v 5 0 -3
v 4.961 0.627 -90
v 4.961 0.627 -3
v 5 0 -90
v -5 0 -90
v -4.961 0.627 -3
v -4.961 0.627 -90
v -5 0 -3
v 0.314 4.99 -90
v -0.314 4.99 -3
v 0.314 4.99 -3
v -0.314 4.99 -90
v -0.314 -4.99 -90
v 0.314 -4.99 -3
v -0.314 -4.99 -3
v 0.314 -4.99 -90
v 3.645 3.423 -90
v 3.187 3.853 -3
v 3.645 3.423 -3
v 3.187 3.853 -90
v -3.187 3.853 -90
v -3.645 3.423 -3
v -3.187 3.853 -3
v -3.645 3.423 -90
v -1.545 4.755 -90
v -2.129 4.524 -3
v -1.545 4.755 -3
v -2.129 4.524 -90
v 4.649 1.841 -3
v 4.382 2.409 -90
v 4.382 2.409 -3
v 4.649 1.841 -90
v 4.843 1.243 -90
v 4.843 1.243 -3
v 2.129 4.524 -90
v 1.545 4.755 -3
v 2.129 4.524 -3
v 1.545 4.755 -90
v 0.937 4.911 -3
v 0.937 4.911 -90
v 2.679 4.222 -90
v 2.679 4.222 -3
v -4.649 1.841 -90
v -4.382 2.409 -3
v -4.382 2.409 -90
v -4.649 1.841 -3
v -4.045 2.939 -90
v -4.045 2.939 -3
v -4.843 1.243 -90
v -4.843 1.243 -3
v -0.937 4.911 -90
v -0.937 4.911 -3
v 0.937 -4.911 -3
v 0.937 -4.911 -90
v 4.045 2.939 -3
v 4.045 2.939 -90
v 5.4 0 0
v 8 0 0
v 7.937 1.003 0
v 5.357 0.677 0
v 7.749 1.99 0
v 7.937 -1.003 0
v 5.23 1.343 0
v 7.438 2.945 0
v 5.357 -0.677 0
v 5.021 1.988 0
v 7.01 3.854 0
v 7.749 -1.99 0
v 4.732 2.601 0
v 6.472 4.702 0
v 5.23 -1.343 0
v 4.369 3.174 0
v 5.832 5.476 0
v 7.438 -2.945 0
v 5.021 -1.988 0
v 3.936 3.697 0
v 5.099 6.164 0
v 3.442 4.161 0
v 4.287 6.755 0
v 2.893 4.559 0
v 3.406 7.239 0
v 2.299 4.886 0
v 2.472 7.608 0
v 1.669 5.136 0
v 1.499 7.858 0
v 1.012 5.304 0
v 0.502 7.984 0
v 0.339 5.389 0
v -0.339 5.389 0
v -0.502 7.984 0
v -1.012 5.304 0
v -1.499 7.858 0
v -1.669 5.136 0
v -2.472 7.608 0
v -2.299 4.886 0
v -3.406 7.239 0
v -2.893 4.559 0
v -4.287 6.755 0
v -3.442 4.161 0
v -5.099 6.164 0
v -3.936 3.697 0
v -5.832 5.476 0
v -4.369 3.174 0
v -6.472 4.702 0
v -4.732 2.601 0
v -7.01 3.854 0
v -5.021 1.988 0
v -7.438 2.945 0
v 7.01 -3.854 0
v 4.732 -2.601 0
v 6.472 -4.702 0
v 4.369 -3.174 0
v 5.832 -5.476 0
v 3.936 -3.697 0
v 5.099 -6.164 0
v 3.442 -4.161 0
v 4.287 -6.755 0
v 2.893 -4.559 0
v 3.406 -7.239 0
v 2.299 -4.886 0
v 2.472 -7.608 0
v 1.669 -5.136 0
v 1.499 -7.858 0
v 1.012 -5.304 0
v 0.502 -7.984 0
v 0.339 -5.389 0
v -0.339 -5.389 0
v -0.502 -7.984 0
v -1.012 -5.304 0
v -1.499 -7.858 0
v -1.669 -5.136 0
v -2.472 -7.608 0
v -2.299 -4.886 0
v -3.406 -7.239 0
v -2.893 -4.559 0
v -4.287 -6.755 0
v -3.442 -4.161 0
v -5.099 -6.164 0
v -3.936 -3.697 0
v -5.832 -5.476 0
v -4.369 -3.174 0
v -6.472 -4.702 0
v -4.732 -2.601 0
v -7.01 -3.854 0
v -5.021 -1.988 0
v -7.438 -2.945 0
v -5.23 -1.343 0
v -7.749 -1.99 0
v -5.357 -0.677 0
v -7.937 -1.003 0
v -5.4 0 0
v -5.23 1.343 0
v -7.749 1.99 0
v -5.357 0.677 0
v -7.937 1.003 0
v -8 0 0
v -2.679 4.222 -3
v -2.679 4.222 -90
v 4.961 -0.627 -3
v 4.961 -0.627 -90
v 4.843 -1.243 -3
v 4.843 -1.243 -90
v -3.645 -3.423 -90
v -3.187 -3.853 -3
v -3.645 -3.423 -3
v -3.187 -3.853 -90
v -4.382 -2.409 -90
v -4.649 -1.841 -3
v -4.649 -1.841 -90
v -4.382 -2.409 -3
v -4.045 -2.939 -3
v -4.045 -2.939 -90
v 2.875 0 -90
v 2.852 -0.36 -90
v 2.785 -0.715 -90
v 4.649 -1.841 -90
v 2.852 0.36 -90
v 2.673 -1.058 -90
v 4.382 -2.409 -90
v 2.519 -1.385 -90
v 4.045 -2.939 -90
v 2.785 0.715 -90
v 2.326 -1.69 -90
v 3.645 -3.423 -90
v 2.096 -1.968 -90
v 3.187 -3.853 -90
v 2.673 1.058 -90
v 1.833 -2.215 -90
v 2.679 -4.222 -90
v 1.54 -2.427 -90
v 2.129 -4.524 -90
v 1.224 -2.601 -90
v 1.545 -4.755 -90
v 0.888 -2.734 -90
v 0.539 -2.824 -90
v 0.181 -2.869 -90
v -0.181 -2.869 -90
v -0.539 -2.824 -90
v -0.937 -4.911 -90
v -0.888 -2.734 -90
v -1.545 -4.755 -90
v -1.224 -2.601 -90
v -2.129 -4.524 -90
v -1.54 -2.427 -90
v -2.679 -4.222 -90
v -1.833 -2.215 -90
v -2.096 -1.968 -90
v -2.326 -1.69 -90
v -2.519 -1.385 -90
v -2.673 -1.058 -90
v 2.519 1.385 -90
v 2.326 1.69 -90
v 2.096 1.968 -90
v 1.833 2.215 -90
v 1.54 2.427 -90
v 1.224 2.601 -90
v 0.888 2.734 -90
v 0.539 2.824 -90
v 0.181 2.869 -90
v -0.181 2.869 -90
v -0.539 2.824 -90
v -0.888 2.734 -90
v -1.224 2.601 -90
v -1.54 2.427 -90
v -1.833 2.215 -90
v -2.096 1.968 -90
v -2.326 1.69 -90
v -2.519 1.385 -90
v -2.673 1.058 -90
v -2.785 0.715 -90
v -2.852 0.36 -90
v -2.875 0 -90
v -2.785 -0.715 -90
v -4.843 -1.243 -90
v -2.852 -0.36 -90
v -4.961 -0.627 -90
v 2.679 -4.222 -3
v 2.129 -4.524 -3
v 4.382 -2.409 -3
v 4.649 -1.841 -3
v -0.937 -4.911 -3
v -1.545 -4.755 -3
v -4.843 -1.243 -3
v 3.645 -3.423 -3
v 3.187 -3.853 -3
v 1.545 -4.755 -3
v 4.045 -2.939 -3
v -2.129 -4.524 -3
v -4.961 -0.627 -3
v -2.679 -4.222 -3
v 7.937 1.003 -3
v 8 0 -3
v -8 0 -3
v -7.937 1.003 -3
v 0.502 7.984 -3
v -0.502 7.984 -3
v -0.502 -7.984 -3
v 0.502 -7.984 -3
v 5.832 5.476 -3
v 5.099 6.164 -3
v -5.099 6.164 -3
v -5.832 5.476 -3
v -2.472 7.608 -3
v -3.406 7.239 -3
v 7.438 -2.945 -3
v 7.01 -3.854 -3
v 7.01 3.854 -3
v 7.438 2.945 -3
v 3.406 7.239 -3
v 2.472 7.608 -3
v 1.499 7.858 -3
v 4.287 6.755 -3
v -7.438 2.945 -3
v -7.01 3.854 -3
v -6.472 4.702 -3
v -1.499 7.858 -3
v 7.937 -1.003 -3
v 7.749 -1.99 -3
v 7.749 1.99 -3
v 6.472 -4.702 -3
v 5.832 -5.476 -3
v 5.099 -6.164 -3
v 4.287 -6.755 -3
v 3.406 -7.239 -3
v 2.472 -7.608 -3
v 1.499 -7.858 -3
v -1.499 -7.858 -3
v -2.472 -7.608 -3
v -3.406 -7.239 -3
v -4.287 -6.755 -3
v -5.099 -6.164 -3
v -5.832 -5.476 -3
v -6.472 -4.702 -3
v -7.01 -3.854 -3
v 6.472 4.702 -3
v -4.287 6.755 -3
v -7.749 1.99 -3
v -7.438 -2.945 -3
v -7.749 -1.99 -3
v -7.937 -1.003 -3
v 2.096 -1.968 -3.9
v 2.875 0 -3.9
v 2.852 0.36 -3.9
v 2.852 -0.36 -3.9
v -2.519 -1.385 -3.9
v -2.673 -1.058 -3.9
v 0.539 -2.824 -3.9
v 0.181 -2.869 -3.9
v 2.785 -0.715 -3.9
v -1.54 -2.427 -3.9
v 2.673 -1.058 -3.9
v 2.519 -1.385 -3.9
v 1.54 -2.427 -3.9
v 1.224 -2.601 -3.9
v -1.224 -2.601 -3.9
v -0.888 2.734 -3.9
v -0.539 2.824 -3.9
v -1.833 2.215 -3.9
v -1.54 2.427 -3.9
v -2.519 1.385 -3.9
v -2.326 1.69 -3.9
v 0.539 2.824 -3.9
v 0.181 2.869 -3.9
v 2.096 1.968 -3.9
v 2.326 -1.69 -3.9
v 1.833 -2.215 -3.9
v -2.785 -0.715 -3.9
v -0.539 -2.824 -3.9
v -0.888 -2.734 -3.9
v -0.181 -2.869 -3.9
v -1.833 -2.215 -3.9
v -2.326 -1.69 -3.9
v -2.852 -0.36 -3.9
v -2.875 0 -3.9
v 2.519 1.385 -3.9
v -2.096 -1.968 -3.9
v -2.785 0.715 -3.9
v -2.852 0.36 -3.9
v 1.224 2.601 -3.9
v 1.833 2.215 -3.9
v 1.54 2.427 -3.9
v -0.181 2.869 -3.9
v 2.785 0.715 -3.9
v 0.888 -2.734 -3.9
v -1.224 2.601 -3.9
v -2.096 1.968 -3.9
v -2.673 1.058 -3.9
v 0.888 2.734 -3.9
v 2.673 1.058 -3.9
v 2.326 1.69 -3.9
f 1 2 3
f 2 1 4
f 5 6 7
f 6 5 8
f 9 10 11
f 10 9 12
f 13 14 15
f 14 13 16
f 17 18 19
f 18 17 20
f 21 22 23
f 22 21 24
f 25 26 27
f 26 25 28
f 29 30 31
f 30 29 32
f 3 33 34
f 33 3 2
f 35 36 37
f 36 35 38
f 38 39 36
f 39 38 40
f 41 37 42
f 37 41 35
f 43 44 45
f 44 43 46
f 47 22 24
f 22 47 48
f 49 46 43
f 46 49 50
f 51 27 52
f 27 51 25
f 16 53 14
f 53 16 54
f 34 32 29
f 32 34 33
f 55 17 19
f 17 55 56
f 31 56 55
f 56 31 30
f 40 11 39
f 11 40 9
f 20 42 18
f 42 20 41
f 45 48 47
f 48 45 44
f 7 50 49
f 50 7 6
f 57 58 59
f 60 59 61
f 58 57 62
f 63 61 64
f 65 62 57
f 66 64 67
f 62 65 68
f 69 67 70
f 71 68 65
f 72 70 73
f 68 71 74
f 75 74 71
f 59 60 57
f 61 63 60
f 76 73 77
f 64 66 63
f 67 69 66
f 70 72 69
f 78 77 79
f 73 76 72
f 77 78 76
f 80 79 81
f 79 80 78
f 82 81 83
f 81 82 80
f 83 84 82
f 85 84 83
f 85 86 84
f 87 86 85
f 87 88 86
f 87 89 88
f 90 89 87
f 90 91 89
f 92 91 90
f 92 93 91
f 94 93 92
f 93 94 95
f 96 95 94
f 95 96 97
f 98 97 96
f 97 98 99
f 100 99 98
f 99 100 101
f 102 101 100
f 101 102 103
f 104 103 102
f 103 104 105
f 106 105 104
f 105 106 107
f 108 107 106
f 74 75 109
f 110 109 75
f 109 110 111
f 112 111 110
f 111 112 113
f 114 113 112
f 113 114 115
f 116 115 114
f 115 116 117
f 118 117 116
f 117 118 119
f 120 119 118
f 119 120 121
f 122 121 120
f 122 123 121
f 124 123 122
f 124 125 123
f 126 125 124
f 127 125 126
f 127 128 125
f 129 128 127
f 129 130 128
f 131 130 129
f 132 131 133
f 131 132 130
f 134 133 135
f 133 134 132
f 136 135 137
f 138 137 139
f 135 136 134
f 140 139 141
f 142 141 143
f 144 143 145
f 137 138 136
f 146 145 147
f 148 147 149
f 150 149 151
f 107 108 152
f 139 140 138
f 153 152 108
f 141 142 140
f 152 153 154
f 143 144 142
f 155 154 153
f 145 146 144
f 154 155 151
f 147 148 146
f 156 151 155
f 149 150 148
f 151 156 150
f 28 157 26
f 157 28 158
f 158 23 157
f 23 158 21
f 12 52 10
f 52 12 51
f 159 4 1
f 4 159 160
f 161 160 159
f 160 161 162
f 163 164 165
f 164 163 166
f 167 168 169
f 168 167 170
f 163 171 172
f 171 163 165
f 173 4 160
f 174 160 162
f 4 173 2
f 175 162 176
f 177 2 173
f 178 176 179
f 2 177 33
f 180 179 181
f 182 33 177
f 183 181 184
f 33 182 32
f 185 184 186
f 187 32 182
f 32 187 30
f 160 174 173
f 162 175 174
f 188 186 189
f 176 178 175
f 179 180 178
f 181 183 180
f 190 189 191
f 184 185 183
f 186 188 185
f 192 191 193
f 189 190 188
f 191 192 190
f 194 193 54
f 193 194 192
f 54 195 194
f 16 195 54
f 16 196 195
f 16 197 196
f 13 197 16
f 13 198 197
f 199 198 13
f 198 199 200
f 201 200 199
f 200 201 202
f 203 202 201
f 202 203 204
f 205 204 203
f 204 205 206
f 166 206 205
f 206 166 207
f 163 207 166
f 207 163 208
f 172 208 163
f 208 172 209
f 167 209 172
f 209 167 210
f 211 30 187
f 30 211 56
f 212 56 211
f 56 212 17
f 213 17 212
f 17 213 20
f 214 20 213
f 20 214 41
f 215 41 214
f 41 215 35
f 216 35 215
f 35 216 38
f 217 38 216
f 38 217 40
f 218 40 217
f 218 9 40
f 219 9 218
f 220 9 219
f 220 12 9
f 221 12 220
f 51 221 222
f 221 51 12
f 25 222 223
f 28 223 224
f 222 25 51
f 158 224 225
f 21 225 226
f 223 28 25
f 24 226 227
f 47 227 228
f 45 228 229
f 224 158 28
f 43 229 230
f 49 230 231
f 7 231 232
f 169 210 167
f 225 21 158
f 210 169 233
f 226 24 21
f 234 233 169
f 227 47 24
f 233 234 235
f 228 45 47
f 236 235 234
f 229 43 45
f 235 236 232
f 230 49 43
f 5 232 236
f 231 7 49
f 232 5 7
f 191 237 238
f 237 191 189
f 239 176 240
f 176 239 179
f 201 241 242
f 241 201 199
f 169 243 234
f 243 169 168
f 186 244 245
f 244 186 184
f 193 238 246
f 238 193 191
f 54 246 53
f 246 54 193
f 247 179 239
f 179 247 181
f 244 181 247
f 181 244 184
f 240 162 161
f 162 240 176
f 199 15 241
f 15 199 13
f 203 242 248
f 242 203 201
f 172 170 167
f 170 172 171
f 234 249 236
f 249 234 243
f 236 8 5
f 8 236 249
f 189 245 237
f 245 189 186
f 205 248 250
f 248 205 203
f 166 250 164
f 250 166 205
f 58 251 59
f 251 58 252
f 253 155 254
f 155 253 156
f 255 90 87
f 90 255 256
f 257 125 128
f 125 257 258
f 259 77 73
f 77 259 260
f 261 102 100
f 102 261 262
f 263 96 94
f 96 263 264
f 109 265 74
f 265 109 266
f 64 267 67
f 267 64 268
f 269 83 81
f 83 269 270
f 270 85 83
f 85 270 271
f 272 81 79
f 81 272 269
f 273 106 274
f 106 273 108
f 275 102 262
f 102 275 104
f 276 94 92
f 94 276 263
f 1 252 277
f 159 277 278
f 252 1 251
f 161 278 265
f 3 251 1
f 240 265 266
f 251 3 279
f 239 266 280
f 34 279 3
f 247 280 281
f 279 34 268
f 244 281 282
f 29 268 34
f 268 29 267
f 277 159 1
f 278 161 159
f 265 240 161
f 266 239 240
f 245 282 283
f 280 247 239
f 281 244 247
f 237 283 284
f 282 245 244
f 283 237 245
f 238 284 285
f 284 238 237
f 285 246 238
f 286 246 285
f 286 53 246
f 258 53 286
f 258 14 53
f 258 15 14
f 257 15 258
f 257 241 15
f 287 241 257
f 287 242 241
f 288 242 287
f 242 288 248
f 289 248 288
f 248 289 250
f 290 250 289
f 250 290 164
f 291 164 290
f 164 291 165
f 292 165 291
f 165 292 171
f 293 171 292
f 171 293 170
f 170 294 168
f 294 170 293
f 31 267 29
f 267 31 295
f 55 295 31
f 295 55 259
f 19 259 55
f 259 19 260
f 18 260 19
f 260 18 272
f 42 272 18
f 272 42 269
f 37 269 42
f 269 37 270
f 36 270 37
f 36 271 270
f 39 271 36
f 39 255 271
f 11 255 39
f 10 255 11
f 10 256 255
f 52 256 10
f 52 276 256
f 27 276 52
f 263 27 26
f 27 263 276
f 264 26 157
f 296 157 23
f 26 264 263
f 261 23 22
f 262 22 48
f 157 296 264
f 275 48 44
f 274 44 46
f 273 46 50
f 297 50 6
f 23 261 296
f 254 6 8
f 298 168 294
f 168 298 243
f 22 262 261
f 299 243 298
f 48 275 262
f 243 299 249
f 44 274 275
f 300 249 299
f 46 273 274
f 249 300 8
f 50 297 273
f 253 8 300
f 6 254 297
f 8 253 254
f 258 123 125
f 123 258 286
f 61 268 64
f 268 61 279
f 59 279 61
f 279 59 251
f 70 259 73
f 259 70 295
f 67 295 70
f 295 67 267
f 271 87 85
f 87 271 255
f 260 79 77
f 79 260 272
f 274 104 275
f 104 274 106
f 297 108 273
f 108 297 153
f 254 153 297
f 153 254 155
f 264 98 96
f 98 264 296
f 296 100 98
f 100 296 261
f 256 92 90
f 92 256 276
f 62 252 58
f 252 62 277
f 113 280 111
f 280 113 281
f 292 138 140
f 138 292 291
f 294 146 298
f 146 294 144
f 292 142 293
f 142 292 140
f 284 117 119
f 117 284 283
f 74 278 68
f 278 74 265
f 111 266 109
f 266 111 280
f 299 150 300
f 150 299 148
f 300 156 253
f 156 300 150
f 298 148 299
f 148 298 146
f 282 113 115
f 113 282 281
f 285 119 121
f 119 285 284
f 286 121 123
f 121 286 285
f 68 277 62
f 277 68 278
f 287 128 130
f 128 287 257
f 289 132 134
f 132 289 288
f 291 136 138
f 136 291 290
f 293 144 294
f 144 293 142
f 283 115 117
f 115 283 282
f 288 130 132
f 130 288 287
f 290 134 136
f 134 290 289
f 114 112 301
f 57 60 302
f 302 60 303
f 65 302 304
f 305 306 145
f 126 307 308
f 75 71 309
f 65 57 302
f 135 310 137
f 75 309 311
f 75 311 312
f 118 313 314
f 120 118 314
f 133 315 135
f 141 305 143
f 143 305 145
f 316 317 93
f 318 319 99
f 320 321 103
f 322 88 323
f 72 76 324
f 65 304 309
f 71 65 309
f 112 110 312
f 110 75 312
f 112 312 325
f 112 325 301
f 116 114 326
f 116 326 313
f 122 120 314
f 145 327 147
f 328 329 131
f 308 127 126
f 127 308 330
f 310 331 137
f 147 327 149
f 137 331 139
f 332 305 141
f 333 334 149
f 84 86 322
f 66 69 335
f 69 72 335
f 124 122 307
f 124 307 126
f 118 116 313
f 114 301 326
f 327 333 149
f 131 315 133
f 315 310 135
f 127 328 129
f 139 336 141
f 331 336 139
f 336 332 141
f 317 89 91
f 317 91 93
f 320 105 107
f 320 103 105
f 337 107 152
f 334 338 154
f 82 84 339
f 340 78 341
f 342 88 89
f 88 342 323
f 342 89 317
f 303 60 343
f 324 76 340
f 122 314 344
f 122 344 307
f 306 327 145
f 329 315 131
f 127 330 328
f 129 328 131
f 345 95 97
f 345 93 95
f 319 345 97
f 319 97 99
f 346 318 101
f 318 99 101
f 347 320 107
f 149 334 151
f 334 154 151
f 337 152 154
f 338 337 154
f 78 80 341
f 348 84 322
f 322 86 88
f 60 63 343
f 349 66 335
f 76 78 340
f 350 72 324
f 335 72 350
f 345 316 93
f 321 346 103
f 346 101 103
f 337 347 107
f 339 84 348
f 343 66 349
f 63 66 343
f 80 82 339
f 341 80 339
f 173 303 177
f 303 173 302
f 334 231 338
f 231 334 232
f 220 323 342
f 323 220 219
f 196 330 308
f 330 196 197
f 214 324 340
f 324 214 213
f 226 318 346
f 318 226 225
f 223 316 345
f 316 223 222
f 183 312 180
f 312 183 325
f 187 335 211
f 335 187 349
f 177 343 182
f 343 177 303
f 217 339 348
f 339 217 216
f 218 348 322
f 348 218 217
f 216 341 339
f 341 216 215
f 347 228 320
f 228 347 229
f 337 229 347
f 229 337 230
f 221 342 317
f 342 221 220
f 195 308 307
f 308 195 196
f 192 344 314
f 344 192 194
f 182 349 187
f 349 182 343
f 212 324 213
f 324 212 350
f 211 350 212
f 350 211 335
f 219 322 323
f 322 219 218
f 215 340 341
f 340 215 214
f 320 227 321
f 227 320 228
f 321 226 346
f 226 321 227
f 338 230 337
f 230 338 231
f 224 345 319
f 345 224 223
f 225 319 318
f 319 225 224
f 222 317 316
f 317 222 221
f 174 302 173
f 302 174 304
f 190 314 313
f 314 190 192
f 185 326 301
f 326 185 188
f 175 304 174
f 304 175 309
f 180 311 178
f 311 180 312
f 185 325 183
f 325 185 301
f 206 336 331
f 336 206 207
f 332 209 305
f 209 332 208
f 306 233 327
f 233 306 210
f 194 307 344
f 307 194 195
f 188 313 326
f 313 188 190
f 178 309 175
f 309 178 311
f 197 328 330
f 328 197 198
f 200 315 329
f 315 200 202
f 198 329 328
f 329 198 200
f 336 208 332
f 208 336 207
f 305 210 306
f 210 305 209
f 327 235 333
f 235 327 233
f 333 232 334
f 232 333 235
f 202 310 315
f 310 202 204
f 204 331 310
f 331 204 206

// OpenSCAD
$fn = 50;


difference() {
	union() {
		translate(v = [0, 0, -90.0000000000]) {
			cylinder(h = 90, r = 5.0000000000);
		}
		translate(v = [0, 0, -3.0000000000]) {
			cylinder(h = 3, r = 8.0000000000);
		}
	}
	union() {
		translate(v = [0, 0, 0]) {
			rotate(a = [0, 0, 0]) {
				difference() {
					union() {
						#translate(v = [0, 0, -90.0000000000]) {
							cylinder(h = 90, r = 2.6000000000);
						}
						#translate(v = [0, 0, -3.9000000000]) {
							cylinder(h = 3.9000000000, r = 5.0000000000, r1 = 2.8750000000, r2 = 5.4000000000);
						}
						#translate(v = [0, 0, -90.0000000000]) {
							cylinder(h = 90, r = 2.8750000000);
						}
						#translate(v = [0, 0, -90.0000000000]) {
							cylinder(h = 90, r = 2.6000000000);
						}
					}
					union();
				}
			}
		}
	}
}
